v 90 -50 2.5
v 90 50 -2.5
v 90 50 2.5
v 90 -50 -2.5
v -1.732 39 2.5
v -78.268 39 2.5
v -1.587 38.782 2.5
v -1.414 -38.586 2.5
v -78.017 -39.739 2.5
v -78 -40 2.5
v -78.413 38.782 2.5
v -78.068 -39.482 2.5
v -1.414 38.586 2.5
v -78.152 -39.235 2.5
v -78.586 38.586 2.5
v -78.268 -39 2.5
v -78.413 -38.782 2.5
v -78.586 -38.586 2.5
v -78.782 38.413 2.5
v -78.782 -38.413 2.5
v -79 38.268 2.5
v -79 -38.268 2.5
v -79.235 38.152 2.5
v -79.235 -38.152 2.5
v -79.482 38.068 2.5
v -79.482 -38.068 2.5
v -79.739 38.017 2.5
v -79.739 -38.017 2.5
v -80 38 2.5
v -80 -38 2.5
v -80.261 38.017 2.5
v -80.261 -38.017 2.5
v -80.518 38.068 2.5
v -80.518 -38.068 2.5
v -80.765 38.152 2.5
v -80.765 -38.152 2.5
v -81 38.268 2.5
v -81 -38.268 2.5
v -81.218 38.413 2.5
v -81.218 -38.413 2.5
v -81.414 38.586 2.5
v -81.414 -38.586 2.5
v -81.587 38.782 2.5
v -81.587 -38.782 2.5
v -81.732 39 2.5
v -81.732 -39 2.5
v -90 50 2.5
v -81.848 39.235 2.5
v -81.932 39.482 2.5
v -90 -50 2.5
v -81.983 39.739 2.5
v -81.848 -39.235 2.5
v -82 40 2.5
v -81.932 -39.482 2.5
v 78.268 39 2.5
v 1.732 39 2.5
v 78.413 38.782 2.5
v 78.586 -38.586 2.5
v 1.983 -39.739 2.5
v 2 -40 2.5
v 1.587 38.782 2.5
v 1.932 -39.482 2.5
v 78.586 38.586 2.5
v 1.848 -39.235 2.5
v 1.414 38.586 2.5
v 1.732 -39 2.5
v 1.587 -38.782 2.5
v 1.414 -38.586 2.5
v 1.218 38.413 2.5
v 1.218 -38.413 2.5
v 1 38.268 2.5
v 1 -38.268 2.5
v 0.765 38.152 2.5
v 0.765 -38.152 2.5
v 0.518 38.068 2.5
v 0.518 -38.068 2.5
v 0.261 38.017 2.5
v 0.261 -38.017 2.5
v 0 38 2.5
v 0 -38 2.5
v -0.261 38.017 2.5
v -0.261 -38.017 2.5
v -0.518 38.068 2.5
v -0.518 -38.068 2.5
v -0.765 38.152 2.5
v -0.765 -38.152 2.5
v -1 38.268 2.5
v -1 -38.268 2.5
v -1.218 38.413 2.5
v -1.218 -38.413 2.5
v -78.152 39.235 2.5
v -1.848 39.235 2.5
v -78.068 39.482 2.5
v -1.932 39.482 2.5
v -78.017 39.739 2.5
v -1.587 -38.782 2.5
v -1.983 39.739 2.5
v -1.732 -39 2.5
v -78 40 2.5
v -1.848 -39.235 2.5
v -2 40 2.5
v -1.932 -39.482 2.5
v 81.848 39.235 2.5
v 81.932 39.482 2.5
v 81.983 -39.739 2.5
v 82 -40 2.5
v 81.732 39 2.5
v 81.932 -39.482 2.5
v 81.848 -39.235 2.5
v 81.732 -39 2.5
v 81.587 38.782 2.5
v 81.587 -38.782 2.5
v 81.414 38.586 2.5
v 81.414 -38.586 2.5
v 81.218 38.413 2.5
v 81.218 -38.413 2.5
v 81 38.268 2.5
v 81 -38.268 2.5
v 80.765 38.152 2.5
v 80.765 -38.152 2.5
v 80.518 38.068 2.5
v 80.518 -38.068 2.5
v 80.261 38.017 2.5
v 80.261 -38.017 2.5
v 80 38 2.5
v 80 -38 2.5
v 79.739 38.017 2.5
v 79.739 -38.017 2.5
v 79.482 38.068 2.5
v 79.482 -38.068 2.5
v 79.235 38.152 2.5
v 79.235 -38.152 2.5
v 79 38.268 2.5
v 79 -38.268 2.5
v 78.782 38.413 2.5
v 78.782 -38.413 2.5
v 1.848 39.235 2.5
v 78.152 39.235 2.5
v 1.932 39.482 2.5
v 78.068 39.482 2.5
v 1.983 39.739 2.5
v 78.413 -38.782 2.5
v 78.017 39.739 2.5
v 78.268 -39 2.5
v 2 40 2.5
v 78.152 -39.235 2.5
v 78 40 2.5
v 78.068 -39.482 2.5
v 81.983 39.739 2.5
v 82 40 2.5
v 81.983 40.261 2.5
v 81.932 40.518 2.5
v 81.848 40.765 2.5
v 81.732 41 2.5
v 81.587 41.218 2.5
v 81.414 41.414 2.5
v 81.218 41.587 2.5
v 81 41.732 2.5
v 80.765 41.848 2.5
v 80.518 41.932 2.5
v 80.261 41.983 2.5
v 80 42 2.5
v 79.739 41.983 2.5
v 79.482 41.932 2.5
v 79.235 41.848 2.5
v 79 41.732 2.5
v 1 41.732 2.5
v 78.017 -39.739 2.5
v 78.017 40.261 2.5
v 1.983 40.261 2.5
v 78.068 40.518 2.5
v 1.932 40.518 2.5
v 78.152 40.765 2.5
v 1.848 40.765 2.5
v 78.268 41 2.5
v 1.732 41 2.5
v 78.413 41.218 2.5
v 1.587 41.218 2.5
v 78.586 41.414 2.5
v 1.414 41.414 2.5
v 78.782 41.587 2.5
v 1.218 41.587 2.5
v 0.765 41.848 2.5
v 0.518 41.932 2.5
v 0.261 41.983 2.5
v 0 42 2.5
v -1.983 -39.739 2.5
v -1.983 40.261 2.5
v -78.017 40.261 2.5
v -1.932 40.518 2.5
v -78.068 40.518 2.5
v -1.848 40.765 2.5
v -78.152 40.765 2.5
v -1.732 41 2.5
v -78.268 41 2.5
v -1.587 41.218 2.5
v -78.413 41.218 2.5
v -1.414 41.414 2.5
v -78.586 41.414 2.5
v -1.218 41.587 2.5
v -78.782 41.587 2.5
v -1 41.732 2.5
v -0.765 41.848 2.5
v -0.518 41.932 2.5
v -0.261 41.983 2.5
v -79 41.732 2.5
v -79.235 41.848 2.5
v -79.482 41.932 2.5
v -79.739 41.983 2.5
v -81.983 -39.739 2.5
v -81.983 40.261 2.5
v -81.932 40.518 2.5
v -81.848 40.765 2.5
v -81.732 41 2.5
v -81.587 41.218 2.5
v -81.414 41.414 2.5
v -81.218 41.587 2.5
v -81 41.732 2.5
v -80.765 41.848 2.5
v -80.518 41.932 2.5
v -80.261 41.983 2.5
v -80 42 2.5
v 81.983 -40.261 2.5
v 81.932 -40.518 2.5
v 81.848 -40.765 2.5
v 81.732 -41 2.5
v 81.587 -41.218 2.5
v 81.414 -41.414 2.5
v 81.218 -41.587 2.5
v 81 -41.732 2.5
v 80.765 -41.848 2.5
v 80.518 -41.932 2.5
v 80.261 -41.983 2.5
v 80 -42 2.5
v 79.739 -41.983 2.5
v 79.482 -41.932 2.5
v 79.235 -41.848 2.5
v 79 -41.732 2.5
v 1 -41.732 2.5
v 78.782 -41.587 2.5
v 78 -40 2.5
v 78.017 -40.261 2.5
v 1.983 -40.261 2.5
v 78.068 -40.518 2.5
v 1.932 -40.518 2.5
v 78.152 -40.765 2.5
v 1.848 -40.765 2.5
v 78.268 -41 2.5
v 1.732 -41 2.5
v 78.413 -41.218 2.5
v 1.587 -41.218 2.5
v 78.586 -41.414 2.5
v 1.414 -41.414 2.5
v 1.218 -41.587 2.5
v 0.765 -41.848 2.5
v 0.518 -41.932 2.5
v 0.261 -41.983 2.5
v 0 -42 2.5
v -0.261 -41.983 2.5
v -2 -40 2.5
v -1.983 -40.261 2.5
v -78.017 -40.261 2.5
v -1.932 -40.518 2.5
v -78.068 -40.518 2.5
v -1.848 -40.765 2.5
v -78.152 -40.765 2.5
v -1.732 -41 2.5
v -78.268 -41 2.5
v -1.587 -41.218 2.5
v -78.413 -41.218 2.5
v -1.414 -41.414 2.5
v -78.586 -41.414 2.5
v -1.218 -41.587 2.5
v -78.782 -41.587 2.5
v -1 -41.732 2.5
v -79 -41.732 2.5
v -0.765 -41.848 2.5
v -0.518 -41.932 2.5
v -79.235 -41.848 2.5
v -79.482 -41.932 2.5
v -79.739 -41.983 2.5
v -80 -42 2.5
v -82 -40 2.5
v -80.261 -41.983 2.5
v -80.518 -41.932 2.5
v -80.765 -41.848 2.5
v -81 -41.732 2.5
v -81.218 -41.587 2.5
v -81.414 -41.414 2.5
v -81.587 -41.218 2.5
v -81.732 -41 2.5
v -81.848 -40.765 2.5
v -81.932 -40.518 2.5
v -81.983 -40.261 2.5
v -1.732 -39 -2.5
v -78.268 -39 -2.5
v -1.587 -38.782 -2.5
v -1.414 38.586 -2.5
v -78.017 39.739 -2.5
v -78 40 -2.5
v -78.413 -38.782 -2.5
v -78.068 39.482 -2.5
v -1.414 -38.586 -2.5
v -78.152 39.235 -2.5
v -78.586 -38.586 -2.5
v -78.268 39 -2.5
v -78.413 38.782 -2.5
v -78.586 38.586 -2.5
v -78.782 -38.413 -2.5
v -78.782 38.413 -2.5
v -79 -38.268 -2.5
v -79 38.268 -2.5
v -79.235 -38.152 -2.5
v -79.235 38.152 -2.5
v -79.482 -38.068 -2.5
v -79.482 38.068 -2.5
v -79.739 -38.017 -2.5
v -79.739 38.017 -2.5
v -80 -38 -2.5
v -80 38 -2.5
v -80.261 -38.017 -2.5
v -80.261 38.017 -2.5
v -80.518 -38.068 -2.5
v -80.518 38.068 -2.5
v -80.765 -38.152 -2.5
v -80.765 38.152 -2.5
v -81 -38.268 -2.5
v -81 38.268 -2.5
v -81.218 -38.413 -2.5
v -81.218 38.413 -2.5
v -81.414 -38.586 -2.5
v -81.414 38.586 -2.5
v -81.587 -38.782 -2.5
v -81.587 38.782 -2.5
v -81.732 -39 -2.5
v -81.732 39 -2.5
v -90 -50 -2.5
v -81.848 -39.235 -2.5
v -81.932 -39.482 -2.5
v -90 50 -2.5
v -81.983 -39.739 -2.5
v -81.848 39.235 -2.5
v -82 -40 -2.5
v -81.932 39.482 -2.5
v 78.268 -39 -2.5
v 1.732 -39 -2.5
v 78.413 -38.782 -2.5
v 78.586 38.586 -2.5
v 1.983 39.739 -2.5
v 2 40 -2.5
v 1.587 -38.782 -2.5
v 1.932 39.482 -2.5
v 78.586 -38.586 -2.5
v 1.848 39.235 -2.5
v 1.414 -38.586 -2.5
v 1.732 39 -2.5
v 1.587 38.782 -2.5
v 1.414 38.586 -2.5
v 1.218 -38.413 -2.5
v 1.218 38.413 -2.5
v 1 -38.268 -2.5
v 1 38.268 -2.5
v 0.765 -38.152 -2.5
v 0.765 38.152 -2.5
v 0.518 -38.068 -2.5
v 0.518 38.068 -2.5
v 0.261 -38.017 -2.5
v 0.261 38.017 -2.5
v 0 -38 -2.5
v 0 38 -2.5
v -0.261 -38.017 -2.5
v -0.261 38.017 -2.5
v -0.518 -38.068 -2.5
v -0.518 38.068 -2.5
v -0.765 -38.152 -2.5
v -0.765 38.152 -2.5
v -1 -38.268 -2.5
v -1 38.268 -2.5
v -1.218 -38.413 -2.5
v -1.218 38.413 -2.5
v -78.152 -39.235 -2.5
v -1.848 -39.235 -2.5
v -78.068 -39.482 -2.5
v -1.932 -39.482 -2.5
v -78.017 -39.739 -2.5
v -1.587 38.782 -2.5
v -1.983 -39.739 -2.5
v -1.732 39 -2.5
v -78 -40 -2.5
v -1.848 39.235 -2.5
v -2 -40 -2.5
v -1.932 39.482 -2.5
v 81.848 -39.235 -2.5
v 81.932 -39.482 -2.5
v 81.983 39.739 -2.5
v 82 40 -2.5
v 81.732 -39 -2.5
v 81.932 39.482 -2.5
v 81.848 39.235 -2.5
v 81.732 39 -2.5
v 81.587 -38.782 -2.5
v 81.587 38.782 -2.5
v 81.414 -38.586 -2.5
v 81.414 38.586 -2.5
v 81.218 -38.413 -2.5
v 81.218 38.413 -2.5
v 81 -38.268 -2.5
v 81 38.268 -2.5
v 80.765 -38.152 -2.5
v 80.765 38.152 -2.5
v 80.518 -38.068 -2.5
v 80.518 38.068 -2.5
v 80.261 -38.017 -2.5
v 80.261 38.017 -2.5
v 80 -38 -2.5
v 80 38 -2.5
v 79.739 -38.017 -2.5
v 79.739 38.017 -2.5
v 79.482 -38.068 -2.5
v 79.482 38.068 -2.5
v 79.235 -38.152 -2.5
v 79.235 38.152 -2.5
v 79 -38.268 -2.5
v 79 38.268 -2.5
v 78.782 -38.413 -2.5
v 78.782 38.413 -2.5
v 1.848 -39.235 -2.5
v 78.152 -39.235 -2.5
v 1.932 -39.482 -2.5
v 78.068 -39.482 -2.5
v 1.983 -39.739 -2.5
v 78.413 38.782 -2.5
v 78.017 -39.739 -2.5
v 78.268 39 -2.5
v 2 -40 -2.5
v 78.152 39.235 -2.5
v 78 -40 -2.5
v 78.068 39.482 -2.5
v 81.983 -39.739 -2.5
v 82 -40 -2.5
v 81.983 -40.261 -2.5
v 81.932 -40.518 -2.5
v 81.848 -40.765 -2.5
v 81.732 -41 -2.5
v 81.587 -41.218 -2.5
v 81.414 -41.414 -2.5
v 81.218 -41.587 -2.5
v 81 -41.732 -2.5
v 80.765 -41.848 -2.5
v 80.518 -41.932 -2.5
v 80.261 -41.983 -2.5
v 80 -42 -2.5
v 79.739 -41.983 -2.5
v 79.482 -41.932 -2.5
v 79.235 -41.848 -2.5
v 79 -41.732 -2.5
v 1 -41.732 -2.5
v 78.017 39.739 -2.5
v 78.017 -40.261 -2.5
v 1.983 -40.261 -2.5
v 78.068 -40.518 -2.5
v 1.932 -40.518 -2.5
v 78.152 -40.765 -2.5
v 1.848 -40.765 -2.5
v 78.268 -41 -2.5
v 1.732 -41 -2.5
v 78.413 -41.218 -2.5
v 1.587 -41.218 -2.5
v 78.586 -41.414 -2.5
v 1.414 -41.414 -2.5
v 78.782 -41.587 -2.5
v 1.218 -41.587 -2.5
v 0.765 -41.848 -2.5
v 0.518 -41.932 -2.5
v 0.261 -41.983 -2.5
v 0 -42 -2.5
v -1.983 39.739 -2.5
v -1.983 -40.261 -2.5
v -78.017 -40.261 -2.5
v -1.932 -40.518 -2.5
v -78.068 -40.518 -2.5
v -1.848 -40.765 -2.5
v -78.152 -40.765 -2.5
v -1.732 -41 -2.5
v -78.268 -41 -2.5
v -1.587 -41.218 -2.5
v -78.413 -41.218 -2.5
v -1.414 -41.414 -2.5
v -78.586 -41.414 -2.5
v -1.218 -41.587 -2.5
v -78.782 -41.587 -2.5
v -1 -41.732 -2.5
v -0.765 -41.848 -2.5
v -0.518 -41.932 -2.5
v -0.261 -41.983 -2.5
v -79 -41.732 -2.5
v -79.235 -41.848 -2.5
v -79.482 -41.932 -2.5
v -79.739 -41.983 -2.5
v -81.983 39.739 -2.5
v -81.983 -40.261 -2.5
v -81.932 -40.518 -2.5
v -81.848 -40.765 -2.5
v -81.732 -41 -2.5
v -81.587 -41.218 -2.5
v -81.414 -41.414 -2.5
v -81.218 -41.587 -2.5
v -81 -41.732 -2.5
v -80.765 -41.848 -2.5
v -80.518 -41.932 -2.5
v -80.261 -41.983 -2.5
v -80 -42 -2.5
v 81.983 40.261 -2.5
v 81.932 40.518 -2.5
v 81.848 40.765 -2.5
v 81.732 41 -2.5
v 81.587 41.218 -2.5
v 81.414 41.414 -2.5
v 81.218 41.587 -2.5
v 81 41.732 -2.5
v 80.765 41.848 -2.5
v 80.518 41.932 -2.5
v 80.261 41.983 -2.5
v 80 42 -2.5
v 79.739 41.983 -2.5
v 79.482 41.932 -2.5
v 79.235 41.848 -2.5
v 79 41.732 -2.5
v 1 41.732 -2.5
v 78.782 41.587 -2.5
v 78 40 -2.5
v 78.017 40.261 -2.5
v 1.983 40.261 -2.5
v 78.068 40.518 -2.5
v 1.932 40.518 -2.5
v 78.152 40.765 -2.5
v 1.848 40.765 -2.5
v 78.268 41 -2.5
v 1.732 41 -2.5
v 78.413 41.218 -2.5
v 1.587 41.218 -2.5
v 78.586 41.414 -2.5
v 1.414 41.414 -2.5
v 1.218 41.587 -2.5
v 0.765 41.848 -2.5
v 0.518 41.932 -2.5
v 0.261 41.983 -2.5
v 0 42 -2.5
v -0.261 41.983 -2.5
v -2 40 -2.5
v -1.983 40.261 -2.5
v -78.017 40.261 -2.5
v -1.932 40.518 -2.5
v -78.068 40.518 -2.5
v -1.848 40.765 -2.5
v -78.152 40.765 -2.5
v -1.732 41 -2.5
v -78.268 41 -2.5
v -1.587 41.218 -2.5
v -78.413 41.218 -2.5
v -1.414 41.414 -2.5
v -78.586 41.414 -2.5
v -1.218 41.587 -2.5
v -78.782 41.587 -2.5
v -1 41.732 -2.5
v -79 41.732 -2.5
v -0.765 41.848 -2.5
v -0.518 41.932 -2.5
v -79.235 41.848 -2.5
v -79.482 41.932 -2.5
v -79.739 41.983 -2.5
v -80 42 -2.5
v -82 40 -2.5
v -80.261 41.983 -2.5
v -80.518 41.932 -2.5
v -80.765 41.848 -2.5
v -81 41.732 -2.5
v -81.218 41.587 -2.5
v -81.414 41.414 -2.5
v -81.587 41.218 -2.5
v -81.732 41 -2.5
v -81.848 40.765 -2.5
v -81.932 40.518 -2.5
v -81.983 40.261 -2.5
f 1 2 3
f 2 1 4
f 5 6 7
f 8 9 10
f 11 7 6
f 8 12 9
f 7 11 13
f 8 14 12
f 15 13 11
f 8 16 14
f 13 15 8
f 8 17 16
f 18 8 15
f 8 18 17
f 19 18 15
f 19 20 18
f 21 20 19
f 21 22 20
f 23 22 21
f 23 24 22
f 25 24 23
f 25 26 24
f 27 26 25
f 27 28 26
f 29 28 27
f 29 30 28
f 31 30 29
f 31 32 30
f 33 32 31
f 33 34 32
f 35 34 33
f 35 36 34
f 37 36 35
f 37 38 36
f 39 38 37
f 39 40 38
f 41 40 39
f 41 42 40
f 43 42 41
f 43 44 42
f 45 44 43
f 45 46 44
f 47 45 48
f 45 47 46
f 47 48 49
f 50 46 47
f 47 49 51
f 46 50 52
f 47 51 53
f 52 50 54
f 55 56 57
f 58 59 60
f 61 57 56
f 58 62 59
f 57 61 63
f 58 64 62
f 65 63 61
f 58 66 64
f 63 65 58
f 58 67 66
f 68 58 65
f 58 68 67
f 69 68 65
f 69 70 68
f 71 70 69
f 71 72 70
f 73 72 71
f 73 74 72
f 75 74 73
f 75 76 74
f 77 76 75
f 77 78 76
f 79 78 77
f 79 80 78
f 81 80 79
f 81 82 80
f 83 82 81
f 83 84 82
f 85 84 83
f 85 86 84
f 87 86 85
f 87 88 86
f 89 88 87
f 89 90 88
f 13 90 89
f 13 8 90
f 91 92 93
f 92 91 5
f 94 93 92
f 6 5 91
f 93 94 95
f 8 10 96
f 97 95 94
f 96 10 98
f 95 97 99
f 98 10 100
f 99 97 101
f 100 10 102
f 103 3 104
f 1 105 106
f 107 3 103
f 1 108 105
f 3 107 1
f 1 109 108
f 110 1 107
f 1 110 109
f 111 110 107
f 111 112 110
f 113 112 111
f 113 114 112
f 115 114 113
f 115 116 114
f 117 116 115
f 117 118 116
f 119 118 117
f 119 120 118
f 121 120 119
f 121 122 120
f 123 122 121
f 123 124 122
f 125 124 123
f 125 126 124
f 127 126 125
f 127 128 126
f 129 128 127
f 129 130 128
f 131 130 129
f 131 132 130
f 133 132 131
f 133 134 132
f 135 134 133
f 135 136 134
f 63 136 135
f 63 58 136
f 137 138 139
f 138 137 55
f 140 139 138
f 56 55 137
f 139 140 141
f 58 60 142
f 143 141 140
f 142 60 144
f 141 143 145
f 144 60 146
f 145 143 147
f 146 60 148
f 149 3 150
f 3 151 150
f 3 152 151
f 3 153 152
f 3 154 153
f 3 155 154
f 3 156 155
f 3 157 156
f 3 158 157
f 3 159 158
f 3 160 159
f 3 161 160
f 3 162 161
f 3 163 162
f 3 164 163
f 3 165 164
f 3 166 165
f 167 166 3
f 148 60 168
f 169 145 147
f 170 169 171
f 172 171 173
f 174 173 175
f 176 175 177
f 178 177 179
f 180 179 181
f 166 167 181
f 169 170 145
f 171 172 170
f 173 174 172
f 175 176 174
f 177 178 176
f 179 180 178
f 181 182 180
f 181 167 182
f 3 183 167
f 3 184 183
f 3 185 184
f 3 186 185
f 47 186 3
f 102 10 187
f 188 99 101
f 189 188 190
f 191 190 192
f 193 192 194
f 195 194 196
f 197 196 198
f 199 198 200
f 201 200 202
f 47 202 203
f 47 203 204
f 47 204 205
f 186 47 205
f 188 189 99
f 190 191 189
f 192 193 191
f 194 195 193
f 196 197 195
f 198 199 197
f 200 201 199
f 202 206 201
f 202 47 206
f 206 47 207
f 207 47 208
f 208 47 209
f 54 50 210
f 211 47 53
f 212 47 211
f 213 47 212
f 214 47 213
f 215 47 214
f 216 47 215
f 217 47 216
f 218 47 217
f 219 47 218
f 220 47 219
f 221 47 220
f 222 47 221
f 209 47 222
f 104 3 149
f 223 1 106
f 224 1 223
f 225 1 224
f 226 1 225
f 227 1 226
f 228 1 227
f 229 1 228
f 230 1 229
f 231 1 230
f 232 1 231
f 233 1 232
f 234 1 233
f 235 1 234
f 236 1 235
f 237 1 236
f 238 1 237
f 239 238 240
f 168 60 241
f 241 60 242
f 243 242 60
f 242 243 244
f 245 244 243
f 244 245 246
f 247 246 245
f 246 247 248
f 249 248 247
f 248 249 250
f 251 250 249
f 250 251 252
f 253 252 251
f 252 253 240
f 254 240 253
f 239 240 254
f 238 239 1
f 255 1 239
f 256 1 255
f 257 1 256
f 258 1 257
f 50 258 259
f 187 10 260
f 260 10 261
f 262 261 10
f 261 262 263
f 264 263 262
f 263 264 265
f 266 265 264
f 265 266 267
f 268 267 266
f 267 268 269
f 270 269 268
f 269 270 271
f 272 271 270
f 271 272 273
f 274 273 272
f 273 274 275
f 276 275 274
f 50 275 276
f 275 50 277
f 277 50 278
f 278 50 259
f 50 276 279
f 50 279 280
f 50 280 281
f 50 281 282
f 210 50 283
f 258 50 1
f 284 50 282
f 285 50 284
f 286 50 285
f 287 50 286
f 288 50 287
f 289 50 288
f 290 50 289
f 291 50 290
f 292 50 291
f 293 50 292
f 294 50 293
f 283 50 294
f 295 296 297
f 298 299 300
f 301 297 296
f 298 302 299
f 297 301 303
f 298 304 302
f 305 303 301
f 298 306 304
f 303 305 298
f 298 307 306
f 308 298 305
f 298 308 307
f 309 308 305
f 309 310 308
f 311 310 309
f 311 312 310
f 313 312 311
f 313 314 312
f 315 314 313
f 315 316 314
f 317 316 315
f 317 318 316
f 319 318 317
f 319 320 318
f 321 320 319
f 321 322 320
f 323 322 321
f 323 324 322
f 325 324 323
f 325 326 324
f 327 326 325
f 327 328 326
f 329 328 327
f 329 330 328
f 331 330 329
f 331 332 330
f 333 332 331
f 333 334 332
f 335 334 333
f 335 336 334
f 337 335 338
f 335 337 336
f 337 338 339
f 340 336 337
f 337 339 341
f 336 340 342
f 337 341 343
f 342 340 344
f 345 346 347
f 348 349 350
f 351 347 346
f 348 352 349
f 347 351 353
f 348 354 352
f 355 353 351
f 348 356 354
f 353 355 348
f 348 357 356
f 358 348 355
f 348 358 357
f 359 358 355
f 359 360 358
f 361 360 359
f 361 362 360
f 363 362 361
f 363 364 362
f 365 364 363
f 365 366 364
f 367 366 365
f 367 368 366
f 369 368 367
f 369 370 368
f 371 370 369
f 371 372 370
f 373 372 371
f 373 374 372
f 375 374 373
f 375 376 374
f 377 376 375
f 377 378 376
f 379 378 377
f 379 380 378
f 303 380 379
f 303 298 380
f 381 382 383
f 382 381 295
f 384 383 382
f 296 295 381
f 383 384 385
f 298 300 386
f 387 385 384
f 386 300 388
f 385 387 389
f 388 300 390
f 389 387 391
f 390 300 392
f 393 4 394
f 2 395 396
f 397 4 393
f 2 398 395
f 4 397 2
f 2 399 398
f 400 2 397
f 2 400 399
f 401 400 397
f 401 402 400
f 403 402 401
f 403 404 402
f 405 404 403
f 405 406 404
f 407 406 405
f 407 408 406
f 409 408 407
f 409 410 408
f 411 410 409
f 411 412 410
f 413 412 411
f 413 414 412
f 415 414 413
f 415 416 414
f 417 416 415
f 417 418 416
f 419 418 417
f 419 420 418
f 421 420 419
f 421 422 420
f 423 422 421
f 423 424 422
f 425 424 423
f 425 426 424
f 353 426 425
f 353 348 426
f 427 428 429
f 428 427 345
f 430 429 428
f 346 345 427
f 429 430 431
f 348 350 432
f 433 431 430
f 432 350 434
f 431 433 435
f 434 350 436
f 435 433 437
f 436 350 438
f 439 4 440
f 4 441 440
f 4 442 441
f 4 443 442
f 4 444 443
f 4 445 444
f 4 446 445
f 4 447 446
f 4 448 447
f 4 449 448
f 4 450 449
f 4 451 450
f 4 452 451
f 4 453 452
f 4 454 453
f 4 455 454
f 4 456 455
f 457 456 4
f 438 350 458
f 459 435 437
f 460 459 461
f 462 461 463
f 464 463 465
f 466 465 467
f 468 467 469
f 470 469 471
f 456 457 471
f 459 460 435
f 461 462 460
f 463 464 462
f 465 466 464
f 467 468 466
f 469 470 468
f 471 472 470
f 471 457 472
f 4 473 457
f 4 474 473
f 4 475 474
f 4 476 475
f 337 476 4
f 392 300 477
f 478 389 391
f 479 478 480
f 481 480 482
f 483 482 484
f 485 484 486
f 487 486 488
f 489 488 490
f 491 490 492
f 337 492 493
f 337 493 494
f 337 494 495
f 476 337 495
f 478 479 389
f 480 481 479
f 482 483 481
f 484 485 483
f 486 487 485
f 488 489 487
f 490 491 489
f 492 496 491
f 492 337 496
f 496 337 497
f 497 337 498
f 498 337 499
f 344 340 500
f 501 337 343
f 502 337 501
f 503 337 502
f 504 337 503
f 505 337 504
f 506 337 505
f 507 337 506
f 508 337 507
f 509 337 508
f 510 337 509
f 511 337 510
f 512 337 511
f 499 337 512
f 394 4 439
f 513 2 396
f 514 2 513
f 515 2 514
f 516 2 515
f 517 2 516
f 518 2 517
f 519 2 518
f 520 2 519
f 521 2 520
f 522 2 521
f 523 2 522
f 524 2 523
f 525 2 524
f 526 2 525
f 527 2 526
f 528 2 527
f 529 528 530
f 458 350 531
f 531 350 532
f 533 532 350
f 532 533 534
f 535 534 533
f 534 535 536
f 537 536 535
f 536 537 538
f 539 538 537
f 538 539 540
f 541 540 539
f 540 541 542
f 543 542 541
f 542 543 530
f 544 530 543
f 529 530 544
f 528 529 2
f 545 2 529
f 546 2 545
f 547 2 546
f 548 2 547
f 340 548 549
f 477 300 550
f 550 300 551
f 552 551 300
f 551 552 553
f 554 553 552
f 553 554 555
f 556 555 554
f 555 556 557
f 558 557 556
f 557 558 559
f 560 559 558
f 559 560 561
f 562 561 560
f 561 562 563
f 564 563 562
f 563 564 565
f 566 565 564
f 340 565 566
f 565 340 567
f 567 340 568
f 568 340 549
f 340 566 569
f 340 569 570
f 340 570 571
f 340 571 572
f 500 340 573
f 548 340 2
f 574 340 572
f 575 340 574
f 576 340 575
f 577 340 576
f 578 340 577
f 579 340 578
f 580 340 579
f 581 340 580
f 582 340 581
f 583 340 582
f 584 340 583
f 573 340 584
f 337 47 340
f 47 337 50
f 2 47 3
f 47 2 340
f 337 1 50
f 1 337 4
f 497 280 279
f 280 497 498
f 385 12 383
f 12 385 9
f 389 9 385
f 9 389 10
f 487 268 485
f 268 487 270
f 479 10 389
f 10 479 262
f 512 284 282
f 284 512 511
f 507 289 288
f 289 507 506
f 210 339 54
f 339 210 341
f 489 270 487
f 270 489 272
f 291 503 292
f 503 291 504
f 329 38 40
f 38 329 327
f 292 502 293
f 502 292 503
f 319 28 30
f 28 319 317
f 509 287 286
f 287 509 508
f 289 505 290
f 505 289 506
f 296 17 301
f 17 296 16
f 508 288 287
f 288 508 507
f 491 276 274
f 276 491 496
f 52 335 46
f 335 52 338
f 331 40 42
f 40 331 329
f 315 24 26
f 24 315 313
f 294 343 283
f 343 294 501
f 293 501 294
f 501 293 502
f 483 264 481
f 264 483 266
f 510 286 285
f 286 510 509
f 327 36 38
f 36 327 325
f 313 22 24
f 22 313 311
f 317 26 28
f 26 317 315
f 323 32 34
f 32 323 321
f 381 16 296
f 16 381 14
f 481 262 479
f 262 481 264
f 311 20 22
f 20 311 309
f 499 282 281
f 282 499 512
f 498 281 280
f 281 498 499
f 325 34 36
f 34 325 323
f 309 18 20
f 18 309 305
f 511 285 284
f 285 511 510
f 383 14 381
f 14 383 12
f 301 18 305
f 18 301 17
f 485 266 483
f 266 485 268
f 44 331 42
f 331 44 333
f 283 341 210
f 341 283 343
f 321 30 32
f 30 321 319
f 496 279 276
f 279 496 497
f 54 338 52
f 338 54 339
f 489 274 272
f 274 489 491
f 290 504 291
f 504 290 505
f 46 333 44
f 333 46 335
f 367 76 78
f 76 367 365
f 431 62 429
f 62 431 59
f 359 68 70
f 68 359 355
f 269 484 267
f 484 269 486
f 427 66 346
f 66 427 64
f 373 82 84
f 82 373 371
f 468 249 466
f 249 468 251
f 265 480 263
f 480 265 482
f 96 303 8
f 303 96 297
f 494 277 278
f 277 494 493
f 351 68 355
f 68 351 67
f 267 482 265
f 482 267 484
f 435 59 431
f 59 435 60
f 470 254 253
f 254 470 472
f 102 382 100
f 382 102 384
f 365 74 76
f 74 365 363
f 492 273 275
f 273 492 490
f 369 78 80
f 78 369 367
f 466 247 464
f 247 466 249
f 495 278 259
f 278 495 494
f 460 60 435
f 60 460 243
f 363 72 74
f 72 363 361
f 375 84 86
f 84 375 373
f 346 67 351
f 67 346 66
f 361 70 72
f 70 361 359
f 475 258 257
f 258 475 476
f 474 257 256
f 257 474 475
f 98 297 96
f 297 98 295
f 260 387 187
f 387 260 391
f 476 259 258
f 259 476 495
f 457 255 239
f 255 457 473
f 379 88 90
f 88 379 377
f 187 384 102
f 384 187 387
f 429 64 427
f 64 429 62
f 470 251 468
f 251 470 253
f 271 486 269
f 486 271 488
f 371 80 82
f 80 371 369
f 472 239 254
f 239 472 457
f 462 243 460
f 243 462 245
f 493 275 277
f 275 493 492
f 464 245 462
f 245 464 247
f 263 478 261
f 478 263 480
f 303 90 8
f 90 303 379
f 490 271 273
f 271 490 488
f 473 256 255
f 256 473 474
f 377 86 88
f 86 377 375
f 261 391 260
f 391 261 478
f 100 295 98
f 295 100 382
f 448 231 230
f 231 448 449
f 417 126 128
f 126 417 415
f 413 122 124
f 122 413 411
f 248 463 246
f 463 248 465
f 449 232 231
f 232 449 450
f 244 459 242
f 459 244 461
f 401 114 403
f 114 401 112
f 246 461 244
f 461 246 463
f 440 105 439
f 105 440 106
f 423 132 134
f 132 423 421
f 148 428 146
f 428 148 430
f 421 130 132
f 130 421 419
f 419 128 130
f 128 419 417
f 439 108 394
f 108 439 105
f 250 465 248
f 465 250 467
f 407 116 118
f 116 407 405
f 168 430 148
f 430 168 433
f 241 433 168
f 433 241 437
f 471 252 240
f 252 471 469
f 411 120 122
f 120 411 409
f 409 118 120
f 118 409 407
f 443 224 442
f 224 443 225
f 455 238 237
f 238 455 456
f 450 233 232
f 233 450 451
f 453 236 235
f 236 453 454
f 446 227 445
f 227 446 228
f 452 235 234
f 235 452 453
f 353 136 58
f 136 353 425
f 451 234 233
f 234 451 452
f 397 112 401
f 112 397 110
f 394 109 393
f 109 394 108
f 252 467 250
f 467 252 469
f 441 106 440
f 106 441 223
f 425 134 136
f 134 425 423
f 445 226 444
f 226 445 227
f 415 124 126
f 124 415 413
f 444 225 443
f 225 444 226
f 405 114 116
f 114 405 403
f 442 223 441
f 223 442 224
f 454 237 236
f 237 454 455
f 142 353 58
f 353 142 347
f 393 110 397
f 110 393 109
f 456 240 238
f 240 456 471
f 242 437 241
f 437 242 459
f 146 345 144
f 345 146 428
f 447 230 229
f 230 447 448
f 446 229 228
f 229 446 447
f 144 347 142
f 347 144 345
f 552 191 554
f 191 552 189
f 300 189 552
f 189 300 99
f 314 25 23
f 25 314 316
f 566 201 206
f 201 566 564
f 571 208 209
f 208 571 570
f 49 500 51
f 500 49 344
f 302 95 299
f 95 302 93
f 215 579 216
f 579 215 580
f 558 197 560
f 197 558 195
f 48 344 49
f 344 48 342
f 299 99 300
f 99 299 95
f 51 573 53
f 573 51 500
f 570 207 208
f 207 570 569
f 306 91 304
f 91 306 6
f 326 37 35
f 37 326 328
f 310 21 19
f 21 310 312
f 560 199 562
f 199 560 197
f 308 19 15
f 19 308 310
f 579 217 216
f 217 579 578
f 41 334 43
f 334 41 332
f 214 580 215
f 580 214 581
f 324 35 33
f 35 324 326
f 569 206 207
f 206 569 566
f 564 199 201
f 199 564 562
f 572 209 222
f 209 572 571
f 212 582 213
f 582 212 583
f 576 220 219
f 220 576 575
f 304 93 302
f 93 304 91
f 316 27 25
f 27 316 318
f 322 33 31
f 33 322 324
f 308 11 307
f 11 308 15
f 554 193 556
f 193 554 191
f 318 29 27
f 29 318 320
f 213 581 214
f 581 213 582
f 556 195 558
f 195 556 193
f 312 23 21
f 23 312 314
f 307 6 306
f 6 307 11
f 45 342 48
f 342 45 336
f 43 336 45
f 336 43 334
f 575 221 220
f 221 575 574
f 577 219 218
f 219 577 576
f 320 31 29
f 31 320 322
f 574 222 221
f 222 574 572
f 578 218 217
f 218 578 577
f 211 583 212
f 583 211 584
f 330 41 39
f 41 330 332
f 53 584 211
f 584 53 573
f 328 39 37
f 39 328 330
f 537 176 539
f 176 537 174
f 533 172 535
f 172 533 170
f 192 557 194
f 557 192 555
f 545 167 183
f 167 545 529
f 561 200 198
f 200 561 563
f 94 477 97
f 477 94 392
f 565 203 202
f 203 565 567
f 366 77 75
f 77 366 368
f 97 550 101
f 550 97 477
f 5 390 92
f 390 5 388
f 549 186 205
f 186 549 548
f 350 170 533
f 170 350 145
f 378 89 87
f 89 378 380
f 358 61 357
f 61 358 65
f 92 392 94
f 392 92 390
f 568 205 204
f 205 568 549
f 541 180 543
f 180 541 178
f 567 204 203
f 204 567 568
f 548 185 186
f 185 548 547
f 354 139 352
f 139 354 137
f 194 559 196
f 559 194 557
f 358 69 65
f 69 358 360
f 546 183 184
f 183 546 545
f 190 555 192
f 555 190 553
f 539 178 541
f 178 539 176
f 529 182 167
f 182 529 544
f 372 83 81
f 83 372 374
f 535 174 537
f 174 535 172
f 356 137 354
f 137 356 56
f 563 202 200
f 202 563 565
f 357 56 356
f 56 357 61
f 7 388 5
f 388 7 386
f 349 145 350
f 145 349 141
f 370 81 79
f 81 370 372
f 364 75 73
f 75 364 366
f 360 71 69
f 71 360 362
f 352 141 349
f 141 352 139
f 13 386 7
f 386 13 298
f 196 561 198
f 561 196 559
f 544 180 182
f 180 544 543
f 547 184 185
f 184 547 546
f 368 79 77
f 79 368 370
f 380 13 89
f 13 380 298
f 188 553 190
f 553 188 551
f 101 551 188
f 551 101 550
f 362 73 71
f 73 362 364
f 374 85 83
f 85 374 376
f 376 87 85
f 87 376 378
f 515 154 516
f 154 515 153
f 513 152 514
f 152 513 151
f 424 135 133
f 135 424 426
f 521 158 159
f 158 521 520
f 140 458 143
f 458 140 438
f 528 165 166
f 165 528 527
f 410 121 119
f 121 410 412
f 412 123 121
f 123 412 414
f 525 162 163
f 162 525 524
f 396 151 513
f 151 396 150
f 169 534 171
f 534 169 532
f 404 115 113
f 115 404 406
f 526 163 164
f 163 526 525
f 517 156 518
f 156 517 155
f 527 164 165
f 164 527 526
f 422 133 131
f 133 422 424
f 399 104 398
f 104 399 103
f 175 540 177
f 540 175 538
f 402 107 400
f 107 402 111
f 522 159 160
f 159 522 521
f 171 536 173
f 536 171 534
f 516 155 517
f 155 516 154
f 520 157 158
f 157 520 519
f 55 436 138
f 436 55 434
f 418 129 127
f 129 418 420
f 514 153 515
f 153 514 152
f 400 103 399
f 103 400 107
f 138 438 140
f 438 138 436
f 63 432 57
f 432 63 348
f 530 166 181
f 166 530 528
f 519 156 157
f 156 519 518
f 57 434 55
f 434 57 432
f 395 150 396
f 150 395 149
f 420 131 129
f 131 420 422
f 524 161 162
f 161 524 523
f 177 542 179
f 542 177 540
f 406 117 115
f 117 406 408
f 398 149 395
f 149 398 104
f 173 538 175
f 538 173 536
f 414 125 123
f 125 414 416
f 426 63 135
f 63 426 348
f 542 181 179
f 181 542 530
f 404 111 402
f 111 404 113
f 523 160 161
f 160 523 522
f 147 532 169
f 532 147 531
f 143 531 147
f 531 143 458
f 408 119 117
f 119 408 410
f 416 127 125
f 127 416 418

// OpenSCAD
// ========================================
// a 180 x 100 x 5 mm plate with six 4 mm holes
// NeuroCAD canonical IR; dimensions are millimetres
// ========================================
$fn = 48;

difference() {
  cube(size=[180, 100, 5], center=true);
  translate([-80, -40, 0]) {
    cylinder(r=2, h=7, center=true);
  }
  translate([0, -40, 0]) {
    cylinder(r=2, h=7, center=true);
  }
  translate([80, -40, 0]) {
    cylinder(r=2, h=7, center=true);
  }
  translate([-80, 40, 0]) {
    cylinder(r=2, h=7, center=true);
  }
  translate([0, 40, 0]) {
    cylinder(r=2, h=7, center=true);
  }
  translate([80, 40, 0]) {
    cylinder(r=2, h=7, center=true);
  }
}
